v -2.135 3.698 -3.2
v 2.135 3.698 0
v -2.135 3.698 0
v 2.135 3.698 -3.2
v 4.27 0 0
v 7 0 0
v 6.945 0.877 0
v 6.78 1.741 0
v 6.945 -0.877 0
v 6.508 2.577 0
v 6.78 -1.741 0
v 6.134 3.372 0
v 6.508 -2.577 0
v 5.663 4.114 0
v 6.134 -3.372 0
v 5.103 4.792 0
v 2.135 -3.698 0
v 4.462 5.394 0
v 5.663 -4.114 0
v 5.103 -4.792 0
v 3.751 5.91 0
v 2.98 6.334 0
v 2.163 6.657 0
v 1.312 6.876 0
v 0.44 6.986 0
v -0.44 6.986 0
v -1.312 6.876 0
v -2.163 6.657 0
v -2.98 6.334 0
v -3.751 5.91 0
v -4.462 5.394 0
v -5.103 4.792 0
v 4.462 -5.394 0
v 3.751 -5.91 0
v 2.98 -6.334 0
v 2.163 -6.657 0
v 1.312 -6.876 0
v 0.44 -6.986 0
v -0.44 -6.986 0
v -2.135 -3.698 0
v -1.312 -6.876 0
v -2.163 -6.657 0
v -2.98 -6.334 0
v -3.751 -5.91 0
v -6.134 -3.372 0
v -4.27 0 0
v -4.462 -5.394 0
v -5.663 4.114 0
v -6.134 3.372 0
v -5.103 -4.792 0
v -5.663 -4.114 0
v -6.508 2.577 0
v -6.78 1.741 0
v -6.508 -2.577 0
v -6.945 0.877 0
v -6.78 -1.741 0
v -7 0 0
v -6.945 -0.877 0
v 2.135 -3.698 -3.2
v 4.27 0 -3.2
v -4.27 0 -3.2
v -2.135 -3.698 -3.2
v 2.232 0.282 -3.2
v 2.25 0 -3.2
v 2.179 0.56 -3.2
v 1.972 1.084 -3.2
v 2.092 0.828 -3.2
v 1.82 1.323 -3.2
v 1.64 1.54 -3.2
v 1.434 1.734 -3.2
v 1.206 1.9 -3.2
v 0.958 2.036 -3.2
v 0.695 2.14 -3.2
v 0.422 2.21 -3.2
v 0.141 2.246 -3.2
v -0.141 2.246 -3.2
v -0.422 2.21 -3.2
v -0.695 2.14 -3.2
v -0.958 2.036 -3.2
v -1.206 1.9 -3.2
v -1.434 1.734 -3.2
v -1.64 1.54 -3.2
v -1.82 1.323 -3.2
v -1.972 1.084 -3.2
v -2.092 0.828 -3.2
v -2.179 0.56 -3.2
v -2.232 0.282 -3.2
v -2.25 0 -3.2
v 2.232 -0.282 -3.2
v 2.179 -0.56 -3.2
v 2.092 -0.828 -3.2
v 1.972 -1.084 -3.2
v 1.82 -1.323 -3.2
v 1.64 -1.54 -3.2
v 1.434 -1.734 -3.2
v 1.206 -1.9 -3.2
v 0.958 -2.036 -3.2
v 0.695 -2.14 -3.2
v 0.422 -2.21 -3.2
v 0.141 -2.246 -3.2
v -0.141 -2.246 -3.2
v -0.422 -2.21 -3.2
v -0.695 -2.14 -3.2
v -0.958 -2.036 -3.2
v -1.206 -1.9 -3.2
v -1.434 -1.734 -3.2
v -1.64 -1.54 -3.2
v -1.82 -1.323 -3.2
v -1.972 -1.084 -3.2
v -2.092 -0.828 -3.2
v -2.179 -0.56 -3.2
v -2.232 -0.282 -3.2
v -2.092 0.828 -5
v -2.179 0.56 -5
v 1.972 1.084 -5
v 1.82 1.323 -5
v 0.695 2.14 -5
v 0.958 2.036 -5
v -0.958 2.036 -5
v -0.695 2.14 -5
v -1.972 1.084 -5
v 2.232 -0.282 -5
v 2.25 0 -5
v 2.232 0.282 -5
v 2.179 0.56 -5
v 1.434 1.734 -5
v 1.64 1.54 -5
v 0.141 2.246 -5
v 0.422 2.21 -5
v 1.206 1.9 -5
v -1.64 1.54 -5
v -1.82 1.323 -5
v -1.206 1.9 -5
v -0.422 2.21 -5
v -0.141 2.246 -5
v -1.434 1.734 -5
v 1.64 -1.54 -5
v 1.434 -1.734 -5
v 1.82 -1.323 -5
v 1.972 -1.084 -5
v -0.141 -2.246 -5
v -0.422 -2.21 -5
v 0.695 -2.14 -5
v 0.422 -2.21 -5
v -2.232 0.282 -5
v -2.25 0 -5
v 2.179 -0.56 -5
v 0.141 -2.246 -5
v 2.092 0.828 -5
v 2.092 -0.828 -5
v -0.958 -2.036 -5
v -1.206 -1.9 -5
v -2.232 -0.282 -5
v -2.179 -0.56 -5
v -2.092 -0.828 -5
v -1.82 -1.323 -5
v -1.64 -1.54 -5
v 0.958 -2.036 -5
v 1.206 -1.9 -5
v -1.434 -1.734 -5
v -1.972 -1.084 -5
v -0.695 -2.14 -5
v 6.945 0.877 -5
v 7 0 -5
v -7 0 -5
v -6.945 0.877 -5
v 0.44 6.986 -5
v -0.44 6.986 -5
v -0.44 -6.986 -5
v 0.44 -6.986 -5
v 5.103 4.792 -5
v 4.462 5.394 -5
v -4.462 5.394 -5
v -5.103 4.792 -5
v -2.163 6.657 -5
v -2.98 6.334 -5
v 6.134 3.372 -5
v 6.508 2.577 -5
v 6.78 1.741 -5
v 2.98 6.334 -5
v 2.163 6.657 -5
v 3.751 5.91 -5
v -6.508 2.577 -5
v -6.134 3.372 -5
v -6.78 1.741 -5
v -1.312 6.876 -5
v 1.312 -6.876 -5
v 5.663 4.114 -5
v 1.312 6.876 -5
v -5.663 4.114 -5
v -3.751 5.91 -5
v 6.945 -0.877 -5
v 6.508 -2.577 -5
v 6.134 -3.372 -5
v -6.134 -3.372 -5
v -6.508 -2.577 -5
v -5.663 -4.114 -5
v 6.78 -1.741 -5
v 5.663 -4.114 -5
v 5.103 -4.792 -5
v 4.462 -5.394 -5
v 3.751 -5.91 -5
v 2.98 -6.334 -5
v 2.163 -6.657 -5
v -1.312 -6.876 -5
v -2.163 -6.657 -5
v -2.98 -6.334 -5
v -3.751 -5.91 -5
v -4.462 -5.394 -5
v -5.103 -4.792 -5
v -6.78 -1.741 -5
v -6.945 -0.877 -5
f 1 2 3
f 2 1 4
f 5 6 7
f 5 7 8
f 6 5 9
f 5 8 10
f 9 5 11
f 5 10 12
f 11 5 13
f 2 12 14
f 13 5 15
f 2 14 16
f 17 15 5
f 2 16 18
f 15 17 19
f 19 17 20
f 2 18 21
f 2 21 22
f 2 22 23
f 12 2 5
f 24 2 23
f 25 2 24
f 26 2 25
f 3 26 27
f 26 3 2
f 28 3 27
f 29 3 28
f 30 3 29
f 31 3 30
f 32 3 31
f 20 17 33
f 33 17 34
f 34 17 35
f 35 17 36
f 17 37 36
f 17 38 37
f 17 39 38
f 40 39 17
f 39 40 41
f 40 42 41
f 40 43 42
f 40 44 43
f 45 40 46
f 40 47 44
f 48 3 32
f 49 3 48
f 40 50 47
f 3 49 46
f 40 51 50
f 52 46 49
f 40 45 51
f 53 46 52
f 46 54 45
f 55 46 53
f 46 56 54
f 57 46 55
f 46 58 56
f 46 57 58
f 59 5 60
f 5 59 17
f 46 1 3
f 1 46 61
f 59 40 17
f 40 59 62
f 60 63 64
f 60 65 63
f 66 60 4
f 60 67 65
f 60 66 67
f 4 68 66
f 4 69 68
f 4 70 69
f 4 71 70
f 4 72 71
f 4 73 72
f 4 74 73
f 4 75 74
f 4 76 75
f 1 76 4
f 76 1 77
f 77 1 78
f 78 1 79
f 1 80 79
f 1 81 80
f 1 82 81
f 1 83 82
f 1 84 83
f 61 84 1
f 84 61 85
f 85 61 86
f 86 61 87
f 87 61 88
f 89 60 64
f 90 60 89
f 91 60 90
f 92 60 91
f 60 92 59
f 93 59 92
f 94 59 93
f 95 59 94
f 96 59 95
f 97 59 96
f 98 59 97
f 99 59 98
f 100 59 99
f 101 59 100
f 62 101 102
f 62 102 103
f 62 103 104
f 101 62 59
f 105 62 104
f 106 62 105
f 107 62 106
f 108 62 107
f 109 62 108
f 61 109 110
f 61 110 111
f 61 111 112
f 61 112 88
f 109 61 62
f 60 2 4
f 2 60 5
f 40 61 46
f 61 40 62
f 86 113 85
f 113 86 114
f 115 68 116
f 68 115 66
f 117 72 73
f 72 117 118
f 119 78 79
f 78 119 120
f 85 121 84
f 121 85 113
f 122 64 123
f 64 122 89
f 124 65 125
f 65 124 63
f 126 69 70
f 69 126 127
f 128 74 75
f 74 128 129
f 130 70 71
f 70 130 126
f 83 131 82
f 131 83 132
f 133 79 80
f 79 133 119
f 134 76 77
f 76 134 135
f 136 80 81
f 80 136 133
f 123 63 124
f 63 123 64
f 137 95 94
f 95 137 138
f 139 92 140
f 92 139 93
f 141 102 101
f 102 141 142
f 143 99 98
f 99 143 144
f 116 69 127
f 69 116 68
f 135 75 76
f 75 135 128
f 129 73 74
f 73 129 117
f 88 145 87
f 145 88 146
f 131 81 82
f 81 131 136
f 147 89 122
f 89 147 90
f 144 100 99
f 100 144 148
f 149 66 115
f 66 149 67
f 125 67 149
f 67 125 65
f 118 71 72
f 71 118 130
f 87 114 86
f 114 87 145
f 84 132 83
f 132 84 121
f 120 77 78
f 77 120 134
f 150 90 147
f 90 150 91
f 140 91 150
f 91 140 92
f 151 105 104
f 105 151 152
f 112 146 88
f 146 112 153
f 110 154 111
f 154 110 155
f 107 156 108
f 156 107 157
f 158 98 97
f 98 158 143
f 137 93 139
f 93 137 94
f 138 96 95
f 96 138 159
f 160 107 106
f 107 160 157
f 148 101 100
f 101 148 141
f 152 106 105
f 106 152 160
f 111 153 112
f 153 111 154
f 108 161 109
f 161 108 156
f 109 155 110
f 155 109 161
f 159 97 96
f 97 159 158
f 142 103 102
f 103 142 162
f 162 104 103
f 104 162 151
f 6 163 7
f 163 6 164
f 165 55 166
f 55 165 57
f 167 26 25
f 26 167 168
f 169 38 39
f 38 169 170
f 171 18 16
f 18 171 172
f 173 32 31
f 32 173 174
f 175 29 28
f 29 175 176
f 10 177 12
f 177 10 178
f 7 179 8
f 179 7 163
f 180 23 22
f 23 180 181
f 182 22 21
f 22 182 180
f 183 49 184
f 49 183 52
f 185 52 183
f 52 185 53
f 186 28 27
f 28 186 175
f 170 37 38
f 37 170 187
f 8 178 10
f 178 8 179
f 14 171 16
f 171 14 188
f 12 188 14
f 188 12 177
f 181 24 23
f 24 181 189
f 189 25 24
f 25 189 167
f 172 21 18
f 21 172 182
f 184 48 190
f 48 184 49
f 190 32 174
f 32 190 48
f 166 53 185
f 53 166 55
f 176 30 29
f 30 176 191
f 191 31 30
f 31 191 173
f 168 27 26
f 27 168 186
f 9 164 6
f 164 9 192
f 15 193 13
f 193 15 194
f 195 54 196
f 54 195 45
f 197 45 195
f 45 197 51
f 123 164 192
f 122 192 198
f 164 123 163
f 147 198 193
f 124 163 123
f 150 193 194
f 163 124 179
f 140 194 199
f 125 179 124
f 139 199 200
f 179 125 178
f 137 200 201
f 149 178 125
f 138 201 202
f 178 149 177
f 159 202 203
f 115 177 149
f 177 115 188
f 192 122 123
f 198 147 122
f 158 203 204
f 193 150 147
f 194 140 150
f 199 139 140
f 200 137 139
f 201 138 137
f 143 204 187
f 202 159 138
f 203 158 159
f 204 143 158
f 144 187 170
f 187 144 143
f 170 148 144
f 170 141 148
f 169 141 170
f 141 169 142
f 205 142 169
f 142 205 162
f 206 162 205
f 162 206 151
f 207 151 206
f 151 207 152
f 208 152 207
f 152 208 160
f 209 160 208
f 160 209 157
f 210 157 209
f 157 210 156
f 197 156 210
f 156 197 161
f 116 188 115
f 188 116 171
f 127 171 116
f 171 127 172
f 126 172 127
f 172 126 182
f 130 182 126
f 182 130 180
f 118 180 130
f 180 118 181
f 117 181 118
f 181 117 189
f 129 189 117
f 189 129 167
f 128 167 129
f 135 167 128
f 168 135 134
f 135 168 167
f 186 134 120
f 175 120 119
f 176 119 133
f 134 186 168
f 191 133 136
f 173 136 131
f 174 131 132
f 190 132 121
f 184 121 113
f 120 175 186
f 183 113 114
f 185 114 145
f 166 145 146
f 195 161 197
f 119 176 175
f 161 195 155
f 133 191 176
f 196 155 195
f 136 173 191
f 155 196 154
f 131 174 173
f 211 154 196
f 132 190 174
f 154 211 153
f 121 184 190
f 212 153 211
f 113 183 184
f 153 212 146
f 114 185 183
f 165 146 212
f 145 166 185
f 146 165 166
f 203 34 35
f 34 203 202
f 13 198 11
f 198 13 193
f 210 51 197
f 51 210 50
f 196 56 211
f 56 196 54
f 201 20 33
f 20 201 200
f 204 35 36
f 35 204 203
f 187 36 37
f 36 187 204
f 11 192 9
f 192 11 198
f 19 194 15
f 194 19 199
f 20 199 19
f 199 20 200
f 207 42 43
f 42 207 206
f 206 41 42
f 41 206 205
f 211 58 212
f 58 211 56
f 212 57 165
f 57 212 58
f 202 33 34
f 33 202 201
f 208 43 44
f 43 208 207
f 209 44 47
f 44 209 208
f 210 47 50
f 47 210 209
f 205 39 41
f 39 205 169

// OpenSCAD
$fn = 50;


difference() {
	union() {
		translate(v = [0, 0, -5.0000000000]) {
			cylinder(h = 5.0000000000, r = 7.0000000000);
		}
	}
	union() {
		translate(v = [0, 0, 0]) {
			rotate(a = [0, 0, 0]) {
				difference() {
					union() {
						translate(v = [0, 0, -3.2000000000]) {
							#linear_extrude(height = 3.2000000000) {
								polygon(points = [[4.2698000000, 0.0000000000], [2.1349000000, 3.6977552691], [-2.1349000000, 3.6977552691], [-4.2698000000, 0.0000000000], [-2.1349000000, -3.6977552691], [2.1349000000, -3.6977552691]]);
							}
						}
					}
					union();
				}
			}
		}
		#translate(v = [0, 0, -100.0000000000]) {
			cylinder(h = 200, r = 2.2500000000);
		}
	}
}
